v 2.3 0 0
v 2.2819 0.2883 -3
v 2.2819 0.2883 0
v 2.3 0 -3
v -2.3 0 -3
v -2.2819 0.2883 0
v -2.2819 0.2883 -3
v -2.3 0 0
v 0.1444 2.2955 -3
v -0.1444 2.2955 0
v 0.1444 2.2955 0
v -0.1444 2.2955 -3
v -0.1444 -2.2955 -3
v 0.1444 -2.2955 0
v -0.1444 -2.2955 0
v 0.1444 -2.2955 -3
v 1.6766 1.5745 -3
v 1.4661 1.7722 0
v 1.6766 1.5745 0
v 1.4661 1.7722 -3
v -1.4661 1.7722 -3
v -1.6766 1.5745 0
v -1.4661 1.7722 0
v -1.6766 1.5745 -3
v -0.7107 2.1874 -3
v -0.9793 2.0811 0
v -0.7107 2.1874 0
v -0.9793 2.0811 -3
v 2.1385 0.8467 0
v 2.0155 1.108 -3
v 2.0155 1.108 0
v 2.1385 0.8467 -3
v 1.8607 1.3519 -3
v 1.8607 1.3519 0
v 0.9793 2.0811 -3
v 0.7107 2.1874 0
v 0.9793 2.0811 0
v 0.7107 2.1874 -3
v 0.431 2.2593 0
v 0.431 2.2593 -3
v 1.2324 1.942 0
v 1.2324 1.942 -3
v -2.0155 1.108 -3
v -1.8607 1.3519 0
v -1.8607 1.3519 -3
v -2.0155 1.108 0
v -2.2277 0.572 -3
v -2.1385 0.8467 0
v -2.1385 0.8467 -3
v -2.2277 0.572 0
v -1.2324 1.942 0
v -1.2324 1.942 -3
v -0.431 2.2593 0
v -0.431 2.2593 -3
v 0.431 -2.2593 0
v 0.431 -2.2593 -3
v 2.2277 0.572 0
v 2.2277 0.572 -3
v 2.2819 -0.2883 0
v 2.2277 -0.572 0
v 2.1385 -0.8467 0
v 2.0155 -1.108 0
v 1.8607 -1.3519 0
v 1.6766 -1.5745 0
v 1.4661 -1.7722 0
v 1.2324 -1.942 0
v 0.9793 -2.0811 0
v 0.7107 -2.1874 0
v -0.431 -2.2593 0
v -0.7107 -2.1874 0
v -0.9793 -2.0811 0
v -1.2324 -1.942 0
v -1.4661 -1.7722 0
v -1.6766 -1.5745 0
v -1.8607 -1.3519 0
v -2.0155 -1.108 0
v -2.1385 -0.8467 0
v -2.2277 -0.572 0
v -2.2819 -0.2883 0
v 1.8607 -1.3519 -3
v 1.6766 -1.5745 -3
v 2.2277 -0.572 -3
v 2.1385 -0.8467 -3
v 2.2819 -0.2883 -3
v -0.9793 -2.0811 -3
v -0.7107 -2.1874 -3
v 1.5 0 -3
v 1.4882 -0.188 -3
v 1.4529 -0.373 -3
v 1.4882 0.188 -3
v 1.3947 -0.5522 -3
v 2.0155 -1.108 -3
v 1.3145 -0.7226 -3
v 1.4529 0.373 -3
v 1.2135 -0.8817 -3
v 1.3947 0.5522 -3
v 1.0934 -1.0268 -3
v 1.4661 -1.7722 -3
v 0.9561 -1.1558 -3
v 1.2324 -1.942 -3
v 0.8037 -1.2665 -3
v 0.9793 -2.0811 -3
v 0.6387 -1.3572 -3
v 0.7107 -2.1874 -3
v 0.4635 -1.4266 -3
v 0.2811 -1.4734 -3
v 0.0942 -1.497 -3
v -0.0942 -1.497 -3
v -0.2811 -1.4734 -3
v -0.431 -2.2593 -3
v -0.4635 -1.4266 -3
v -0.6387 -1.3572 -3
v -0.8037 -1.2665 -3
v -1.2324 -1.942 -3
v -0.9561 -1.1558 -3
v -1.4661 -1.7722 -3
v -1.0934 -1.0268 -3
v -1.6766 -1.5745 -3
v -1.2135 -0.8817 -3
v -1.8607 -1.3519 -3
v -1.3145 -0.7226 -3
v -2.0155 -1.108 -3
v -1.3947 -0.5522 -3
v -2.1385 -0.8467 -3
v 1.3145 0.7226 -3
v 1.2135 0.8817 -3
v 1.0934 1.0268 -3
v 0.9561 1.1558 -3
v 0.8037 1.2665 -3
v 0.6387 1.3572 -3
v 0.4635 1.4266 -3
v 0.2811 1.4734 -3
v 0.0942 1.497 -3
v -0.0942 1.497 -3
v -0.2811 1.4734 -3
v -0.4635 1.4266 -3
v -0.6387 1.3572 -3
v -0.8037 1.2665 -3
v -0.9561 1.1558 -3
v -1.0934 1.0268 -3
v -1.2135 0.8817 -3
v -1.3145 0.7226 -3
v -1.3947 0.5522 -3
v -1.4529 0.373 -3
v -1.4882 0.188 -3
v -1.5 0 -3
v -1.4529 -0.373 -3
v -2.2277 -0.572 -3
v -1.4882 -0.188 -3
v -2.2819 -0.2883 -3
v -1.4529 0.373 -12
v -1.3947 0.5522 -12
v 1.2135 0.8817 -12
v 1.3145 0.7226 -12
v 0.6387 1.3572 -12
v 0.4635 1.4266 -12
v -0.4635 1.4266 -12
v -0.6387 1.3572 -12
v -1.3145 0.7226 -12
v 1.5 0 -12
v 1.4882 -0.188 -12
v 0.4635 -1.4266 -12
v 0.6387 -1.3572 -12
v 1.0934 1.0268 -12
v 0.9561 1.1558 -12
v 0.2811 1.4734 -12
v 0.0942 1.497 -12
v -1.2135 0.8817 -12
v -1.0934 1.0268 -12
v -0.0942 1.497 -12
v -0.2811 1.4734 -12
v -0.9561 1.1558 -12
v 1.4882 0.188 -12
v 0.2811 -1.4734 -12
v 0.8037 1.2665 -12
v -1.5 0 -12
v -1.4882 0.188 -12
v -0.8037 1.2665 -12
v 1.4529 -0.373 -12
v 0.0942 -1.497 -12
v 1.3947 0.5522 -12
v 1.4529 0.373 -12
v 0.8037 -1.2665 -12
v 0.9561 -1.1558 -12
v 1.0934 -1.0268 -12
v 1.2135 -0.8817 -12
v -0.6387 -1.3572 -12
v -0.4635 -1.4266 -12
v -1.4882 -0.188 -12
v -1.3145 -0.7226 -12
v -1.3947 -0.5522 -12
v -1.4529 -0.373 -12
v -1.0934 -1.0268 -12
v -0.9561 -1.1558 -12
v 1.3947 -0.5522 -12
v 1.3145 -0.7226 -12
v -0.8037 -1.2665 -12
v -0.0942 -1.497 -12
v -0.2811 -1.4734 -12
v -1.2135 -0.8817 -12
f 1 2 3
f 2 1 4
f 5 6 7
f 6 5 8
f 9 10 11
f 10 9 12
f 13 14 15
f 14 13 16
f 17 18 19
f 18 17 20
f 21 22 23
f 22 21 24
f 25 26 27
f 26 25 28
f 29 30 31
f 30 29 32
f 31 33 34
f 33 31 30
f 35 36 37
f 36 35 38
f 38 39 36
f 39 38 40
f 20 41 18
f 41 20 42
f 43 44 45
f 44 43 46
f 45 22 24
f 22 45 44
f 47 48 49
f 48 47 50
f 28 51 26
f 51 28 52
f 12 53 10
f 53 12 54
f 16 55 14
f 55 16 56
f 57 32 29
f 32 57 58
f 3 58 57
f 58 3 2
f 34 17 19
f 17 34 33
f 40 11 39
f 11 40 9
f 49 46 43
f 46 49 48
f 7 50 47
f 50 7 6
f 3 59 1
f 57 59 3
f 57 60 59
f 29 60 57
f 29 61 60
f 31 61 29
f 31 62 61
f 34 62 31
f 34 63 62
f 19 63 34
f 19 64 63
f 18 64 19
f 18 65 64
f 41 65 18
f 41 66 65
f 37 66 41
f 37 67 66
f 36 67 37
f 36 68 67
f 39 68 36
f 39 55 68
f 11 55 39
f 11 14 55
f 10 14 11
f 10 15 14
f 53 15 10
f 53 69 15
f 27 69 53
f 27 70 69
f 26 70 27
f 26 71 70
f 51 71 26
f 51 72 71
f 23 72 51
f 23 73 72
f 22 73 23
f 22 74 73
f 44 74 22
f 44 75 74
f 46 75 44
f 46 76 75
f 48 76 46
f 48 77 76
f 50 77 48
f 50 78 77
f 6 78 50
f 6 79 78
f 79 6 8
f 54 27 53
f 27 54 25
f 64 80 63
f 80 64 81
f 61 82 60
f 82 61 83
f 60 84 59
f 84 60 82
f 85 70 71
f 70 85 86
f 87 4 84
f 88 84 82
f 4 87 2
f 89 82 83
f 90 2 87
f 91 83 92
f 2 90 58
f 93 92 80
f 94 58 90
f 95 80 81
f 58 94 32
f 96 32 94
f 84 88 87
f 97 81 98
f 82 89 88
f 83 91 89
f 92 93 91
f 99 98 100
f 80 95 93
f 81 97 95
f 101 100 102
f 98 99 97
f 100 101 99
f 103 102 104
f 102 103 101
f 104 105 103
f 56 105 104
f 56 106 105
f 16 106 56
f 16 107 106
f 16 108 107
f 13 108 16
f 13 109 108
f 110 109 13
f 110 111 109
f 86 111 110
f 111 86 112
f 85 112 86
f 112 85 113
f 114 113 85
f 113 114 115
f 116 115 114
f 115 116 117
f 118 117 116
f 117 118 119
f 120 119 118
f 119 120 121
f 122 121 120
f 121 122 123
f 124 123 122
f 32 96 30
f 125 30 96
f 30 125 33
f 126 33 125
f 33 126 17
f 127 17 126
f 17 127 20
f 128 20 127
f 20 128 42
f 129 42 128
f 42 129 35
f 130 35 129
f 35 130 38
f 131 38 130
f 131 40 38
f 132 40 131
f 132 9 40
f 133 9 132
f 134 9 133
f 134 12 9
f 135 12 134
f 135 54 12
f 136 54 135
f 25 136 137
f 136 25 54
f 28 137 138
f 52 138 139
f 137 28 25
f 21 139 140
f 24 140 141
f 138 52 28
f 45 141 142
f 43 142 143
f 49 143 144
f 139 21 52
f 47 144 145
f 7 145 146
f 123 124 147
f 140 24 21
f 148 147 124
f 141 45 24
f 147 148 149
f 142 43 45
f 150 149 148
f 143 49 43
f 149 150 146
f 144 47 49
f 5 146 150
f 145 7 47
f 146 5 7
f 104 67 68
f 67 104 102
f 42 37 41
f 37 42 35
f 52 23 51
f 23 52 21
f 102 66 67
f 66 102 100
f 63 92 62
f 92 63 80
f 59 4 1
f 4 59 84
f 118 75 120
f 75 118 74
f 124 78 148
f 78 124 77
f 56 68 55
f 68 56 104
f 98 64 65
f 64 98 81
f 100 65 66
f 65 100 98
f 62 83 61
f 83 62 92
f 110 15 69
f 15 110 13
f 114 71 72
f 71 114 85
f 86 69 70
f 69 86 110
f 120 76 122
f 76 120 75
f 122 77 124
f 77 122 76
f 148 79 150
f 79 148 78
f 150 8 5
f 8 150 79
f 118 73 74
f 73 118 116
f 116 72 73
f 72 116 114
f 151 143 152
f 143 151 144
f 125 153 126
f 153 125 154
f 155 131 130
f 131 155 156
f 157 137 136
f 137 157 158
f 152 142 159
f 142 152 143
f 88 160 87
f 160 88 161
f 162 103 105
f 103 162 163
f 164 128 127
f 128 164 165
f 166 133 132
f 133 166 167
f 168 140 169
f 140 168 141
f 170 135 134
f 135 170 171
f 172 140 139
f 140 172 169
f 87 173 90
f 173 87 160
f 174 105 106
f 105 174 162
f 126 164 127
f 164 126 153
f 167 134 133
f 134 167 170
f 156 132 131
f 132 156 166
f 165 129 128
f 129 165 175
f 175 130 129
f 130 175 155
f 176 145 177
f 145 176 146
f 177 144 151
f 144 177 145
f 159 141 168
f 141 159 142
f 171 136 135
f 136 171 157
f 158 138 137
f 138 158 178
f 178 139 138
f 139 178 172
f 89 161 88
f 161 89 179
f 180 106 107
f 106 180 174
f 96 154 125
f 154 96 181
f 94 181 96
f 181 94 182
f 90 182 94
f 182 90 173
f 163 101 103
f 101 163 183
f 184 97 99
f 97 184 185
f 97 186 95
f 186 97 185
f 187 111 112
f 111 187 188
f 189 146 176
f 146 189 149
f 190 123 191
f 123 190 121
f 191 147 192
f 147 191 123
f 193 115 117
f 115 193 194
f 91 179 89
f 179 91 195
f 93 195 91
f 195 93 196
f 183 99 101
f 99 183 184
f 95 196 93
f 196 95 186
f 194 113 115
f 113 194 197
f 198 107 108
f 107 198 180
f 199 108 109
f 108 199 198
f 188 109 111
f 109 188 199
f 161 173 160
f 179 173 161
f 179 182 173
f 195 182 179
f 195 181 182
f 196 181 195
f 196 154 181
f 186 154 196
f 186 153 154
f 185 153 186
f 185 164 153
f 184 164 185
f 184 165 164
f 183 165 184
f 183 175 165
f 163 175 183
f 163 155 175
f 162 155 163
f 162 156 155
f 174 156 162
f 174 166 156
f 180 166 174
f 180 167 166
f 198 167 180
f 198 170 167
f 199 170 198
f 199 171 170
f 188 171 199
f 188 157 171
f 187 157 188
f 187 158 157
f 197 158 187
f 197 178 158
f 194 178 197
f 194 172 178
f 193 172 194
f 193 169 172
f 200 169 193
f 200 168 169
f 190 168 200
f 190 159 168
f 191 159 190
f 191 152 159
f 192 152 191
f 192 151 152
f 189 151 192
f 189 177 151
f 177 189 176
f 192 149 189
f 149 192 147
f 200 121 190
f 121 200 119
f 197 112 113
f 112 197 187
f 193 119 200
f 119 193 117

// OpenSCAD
$fn = 50;


difference() {
	union() {
		translate(v = [0, 0, -3]) {
			rotate(a = [0, 0, 0]) {
				cylinder(h = 3, r1 = 2.3000000000, r2 = 2.3000000000);
			}
		}
		translate(v = [0, 0, -12]) {
			rotate(a = [0, 0, 0]) {
				cylinder(h = 12, r = 1.5000000000);
			}
		}
	}
	union();
}
